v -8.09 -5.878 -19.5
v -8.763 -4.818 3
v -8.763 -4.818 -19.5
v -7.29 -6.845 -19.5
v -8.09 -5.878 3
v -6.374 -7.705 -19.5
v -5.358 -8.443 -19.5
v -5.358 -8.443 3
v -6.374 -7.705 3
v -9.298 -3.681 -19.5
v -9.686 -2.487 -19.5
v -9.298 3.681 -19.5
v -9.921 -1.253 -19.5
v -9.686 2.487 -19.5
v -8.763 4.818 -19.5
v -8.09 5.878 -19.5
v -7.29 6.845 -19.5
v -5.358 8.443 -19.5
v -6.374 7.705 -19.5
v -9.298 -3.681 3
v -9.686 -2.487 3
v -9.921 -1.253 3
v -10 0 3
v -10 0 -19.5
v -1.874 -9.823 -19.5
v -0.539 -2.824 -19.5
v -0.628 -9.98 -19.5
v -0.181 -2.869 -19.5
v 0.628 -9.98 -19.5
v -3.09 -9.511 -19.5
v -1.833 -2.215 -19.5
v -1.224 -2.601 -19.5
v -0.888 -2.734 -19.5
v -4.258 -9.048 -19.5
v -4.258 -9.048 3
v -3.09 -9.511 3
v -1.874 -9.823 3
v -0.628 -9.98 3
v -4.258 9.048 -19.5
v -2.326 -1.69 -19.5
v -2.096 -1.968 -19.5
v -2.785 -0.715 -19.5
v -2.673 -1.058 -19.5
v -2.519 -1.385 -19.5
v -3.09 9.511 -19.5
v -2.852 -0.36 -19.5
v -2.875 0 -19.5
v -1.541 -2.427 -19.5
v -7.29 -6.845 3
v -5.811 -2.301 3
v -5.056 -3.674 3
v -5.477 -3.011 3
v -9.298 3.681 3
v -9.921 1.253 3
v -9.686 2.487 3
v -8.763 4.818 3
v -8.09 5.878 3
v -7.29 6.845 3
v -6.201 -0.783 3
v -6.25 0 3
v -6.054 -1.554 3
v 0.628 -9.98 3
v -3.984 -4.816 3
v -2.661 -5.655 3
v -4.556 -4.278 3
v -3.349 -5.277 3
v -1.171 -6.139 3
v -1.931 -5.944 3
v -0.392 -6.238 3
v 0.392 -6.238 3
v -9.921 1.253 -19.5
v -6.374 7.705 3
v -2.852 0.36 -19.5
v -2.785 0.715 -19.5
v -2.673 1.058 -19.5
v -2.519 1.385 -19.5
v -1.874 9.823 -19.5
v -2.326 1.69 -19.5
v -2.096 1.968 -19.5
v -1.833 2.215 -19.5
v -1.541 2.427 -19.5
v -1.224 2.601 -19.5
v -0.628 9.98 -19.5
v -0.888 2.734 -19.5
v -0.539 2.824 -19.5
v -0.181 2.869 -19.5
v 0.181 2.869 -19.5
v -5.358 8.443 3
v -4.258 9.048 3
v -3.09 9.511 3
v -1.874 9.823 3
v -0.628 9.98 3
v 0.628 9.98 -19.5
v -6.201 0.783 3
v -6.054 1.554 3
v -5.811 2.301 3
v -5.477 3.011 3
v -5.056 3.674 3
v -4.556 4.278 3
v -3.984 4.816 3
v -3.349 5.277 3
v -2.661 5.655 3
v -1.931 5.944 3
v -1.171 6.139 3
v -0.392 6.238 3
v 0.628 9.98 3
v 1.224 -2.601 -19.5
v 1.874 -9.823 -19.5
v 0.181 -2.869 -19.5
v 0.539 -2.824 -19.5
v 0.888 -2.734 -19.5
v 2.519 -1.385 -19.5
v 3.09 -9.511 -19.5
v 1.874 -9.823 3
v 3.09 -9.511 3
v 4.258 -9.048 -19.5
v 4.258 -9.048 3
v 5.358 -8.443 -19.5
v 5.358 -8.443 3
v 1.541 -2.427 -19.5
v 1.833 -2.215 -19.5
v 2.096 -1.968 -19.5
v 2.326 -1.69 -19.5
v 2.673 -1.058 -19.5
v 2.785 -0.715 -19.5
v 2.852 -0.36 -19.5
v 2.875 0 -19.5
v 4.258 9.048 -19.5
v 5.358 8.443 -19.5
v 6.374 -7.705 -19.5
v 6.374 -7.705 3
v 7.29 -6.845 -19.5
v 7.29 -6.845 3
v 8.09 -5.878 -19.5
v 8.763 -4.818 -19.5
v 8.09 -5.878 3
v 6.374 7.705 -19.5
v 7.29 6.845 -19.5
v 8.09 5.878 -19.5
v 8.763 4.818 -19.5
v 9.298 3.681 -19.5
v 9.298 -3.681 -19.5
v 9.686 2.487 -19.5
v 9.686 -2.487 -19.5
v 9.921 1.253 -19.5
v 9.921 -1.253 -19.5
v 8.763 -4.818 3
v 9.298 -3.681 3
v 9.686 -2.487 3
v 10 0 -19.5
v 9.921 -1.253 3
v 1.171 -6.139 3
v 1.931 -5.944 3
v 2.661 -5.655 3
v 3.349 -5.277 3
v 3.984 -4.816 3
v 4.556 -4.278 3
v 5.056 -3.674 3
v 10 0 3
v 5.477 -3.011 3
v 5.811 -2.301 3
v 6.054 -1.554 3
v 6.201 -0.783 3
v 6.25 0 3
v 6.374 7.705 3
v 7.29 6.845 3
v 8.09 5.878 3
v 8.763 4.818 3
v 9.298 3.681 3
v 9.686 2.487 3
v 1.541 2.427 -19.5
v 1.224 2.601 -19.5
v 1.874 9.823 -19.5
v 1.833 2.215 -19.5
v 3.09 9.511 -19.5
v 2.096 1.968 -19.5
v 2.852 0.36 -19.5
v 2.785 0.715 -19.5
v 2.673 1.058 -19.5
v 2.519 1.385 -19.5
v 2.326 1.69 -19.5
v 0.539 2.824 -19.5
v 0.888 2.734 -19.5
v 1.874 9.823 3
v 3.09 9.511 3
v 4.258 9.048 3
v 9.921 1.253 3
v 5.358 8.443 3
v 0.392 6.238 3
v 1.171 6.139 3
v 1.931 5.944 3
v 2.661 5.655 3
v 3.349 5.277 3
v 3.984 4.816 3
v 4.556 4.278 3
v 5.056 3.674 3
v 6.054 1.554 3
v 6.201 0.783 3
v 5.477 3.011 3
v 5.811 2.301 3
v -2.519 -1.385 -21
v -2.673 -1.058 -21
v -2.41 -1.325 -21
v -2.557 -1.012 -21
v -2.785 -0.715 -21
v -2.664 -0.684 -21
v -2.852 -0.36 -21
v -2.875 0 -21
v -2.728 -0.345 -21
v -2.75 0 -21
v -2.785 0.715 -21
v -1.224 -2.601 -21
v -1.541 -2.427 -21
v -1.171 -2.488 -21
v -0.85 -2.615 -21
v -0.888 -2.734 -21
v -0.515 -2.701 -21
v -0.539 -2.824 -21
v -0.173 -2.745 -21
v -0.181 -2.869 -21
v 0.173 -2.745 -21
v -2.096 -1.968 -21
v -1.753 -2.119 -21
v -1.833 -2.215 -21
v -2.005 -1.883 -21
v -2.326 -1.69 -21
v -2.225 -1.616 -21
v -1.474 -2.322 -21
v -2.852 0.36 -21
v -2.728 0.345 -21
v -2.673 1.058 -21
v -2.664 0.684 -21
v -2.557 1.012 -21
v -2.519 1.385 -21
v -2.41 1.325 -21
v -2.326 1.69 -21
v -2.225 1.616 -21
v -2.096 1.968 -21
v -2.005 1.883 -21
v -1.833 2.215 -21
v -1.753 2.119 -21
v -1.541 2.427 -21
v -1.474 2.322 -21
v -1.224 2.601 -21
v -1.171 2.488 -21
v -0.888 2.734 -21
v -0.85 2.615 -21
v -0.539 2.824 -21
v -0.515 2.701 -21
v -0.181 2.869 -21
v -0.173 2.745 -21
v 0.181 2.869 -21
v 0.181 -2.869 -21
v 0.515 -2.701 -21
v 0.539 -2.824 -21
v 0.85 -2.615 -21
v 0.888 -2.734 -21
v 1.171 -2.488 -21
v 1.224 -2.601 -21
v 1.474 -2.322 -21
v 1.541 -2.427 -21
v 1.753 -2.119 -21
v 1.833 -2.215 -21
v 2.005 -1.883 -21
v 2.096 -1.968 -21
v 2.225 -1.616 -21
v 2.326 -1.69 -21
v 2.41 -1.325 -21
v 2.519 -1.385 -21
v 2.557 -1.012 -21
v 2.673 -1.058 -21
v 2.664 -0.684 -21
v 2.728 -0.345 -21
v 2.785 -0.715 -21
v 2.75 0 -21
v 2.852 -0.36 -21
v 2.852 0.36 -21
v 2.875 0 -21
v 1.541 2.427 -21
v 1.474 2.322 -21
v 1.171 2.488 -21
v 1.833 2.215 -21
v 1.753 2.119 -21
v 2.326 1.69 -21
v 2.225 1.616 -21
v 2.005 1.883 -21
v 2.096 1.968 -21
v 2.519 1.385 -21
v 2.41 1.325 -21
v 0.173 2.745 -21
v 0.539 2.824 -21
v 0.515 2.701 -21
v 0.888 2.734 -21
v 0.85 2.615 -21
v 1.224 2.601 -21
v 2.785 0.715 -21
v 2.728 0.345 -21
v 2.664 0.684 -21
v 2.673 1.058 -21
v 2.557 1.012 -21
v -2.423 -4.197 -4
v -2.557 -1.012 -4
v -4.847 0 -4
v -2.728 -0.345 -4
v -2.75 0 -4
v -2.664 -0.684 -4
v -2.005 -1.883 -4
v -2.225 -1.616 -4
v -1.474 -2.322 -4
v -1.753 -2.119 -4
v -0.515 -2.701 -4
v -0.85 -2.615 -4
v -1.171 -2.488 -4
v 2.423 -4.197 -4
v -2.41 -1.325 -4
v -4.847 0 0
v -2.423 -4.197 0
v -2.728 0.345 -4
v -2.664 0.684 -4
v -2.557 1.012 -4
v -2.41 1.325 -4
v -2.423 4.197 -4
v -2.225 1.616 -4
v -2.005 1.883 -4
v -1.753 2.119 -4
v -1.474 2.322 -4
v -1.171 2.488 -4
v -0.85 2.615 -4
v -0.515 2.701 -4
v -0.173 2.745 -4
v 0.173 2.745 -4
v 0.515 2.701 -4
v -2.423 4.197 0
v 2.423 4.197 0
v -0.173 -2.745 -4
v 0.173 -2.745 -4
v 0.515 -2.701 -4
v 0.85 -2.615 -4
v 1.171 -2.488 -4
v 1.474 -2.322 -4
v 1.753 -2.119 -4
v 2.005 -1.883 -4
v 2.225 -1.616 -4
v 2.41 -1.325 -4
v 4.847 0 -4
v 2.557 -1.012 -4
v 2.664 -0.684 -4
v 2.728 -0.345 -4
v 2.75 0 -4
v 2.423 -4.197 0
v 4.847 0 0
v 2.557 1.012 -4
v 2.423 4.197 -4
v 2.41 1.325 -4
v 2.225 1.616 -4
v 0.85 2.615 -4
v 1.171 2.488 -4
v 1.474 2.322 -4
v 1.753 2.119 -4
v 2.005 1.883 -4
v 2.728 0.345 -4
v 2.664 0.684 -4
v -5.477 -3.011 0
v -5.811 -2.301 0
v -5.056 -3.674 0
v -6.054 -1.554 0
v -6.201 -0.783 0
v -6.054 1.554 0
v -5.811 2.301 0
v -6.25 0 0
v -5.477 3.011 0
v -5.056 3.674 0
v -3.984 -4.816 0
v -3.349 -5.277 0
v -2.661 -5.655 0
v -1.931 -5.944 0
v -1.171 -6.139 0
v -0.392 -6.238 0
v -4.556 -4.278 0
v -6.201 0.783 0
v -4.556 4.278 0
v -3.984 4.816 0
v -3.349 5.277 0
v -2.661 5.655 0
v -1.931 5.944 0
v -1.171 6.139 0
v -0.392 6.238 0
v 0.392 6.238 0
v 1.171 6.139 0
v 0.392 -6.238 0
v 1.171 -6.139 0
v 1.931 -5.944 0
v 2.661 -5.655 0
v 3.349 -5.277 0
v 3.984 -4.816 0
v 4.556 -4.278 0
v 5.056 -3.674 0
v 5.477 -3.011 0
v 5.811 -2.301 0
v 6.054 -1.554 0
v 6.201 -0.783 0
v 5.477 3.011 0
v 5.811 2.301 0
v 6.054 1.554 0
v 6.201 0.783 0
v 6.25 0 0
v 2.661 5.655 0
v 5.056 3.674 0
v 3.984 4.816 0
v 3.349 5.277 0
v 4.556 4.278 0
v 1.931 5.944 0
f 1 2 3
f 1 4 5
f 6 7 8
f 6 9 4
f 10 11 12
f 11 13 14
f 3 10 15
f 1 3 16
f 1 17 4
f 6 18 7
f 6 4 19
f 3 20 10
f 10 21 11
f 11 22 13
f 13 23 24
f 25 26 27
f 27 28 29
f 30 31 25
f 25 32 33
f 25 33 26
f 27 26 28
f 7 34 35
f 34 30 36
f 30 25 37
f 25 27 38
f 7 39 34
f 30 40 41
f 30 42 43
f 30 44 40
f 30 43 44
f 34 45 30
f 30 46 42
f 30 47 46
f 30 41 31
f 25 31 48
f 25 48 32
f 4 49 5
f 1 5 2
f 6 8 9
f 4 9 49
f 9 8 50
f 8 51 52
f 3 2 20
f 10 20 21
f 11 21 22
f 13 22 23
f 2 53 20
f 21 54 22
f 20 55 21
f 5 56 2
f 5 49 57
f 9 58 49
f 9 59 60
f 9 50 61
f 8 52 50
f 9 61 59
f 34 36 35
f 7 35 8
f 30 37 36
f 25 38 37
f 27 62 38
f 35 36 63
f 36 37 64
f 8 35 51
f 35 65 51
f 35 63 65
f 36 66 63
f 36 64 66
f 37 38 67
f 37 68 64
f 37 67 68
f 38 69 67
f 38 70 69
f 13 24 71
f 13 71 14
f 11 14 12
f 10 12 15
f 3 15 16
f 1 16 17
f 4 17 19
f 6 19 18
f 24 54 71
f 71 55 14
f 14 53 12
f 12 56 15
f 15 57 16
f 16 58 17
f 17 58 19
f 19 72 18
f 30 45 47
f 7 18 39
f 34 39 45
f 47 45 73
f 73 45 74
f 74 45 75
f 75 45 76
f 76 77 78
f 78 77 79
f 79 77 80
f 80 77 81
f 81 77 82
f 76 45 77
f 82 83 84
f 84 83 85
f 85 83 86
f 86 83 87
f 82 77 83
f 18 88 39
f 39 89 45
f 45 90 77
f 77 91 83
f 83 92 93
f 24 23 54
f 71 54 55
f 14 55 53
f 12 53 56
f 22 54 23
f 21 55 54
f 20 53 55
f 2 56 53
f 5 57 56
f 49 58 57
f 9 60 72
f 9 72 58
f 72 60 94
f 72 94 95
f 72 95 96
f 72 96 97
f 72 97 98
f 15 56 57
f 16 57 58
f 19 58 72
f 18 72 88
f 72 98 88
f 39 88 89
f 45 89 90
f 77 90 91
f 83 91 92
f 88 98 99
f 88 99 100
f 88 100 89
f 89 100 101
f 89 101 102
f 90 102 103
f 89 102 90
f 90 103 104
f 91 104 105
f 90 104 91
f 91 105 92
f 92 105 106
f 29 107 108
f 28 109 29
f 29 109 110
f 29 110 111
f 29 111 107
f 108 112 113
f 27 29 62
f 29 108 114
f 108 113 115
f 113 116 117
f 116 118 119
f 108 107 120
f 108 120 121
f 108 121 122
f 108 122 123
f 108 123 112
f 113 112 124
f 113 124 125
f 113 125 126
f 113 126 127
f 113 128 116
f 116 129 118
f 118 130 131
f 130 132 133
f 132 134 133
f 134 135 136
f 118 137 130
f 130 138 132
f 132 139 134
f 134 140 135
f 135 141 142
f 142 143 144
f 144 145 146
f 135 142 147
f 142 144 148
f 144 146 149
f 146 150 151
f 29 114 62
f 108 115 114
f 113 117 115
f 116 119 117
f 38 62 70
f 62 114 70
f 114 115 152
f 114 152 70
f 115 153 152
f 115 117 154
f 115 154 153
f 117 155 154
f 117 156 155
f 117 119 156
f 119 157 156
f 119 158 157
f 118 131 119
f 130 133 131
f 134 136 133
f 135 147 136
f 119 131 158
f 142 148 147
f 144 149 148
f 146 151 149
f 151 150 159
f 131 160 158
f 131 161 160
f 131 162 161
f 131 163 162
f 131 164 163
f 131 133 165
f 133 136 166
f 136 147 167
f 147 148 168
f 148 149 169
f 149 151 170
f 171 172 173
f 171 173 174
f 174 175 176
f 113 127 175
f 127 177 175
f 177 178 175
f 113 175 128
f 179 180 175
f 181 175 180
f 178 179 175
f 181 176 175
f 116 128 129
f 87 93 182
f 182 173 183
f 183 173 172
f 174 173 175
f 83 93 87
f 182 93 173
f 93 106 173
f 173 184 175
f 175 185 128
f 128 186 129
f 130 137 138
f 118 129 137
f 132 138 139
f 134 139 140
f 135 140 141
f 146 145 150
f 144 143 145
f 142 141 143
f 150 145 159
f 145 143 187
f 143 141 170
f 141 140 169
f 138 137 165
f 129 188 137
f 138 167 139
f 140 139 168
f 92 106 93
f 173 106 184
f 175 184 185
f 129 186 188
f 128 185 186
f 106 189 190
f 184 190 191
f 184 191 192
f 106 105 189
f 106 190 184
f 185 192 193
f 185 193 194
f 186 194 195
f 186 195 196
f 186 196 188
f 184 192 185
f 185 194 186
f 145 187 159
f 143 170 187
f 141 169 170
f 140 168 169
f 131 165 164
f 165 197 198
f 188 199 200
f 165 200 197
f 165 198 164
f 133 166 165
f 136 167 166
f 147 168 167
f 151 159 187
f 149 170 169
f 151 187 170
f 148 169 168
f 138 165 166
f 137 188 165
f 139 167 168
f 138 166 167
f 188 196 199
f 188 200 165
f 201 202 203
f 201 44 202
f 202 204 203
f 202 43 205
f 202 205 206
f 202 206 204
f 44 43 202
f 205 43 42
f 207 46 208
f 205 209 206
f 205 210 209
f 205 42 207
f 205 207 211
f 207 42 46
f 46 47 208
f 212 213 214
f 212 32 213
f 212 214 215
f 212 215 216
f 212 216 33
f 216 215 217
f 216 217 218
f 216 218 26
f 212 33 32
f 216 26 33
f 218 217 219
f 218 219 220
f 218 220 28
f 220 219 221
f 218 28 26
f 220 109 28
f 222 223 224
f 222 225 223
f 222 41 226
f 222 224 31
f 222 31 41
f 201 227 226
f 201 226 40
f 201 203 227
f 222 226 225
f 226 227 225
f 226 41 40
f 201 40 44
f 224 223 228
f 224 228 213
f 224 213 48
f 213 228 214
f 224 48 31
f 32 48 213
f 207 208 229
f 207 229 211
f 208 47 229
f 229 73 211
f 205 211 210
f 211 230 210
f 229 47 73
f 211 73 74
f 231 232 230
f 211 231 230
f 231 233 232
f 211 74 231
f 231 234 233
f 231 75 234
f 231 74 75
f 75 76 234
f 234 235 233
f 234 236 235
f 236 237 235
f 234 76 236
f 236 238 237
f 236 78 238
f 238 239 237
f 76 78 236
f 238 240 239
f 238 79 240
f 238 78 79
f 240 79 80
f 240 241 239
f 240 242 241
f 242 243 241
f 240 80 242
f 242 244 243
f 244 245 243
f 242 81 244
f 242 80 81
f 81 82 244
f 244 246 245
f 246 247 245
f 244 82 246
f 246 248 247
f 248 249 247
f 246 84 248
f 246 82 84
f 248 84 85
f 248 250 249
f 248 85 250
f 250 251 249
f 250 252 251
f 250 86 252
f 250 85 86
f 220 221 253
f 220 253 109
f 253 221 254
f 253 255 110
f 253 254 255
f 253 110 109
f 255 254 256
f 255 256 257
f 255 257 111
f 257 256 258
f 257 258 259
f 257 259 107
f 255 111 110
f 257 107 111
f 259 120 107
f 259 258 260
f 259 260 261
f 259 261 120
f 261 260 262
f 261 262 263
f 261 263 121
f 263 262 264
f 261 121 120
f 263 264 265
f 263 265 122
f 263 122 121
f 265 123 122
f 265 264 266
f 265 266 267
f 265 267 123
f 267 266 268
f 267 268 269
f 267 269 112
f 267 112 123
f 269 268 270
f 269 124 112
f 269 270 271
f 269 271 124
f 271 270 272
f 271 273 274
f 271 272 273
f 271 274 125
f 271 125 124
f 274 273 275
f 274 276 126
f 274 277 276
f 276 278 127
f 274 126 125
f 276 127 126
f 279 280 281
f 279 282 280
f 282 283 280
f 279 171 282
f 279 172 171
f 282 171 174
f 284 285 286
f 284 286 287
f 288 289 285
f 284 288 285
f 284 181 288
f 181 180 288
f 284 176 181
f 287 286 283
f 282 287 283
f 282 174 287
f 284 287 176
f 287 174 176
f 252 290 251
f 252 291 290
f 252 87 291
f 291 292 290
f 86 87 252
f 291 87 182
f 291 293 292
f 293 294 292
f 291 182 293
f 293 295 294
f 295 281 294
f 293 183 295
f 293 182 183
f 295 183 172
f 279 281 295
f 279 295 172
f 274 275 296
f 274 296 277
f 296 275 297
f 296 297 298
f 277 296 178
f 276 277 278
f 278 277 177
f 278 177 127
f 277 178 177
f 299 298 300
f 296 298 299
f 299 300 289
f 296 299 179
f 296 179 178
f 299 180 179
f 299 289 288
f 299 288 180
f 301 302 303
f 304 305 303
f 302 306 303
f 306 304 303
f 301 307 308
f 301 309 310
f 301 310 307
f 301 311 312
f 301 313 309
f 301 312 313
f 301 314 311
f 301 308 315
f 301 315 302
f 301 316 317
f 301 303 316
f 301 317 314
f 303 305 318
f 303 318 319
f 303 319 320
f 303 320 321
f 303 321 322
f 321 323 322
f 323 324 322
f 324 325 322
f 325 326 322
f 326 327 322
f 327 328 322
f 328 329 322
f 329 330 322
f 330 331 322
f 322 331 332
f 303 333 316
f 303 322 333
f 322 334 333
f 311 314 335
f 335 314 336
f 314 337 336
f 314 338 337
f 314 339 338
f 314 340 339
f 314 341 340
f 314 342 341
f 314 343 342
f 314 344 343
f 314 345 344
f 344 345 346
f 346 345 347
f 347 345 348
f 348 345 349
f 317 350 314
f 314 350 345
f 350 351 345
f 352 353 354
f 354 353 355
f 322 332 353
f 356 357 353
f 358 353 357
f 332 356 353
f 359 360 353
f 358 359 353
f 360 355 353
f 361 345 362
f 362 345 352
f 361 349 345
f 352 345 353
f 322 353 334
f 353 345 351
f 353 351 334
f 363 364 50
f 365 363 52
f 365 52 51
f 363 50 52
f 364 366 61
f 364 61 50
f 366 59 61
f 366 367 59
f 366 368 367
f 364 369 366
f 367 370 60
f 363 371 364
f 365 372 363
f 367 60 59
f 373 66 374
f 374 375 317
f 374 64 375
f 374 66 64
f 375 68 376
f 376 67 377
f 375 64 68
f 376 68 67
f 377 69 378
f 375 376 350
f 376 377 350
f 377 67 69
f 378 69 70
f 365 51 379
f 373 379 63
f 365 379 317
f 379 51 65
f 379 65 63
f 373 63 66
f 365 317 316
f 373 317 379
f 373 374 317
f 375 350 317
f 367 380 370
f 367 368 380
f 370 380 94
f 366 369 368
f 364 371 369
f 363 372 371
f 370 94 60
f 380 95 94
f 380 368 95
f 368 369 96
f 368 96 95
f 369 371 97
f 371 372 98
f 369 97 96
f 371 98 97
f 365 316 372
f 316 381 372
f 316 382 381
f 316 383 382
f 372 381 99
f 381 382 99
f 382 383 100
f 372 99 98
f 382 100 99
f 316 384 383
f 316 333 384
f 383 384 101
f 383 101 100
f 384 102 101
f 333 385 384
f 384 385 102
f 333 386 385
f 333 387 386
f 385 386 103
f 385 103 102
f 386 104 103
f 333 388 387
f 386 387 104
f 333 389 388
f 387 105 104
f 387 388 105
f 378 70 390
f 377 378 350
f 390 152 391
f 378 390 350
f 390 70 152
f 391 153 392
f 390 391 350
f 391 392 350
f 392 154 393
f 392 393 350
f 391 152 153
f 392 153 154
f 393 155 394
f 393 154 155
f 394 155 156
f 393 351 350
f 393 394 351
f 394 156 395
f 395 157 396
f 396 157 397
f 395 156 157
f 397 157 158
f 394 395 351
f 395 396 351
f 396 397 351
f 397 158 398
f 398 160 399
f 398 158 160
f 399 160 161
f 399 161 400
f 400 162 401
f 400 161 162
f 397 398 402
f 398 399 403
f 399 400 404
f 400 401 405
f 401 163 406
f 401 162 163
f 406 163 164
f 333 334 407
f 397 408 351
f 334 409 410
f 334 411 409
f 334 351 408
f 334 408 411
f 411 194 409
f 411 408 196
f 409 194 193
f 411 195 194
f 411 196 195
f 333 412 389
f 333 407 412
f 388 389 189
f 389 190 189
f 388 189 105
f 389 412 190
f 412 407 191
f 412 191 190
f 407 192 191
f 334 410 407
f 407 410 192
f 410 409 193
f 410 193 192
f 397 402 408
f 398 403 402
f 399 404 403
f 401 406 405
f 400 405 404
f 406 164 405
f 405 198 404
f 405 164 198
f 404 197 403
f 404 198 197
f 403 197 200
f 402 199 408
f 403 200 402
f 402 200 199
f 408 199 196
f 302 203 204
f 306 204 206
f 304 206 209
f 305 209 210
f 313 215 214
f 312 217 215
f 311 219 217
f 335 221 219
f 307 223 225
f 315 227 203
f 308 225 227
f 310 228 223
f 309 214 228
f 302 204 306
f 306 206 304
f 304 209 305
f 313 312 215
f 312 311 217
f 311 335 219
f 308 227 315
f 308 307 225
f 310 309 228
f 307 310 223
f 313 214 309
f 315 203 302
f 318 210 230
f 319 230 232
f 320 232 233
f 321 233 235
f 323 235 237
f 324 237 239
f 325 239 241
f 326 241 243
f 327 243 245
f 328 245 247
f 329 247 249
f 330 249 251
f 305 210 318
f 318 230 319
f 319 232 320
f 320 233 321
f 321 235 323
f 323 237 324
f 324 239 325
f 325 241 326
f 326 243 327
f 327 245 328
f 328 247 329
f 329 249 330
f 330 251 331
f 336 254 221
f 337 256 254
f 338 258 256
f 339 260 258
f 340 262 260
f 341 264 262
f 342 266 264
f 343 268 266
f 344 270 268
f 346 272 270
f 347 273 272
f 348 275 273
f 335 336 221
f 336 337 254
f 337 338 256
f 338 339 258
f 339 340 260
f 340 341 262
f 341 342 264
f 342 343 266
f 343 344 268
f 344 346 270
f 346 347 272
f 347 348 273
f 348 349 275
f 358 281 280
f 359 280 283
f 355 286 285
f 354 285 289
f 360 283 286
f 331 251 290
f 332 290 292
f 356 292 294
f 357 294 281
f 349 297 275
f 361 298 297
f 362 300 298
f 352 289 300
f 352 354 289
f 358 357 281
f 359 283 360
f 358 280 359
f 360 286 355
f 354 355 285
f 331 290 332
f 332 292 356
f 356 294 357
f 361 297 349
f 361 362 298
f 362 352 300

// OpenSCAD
$fn = 50;

difference() {
	union() {
		translate(v = [0, 0, -19.5]) {
			cylinder(h = 22.5, r = 10.0);
		}
		#translate(v = [0, 0, -21.0]) {
			cylinder(h = 21, r = 2.875);
		}
	}
	union() {
		translate(v = [0, 0, 0]) {
			rotate(a = [0, 0, 0]) {
				difference() {
					union() {
						translate(v = [0, 0, -4]) {
							linear_extrude(height = 4) {
								polygon(points = [[4.8468, 0.0], [2.4234000000000004, 4.197451927062417], [-2.423399999999999, 4.197451927062417], [-4.8468, 5.935618106107392e-16], [-2.423400000000002, -4.197451927062416], [2.423399999999997, -4.197451927062419]]);
							}
						}
					}
					union();
				}
			}
		}
		#cylinder(h = 3, r = 6.25);
		#translate(v = [0, 0, -100.0]) {
			cylinder(h = 200, r = 2.75);
		}
	}
}
